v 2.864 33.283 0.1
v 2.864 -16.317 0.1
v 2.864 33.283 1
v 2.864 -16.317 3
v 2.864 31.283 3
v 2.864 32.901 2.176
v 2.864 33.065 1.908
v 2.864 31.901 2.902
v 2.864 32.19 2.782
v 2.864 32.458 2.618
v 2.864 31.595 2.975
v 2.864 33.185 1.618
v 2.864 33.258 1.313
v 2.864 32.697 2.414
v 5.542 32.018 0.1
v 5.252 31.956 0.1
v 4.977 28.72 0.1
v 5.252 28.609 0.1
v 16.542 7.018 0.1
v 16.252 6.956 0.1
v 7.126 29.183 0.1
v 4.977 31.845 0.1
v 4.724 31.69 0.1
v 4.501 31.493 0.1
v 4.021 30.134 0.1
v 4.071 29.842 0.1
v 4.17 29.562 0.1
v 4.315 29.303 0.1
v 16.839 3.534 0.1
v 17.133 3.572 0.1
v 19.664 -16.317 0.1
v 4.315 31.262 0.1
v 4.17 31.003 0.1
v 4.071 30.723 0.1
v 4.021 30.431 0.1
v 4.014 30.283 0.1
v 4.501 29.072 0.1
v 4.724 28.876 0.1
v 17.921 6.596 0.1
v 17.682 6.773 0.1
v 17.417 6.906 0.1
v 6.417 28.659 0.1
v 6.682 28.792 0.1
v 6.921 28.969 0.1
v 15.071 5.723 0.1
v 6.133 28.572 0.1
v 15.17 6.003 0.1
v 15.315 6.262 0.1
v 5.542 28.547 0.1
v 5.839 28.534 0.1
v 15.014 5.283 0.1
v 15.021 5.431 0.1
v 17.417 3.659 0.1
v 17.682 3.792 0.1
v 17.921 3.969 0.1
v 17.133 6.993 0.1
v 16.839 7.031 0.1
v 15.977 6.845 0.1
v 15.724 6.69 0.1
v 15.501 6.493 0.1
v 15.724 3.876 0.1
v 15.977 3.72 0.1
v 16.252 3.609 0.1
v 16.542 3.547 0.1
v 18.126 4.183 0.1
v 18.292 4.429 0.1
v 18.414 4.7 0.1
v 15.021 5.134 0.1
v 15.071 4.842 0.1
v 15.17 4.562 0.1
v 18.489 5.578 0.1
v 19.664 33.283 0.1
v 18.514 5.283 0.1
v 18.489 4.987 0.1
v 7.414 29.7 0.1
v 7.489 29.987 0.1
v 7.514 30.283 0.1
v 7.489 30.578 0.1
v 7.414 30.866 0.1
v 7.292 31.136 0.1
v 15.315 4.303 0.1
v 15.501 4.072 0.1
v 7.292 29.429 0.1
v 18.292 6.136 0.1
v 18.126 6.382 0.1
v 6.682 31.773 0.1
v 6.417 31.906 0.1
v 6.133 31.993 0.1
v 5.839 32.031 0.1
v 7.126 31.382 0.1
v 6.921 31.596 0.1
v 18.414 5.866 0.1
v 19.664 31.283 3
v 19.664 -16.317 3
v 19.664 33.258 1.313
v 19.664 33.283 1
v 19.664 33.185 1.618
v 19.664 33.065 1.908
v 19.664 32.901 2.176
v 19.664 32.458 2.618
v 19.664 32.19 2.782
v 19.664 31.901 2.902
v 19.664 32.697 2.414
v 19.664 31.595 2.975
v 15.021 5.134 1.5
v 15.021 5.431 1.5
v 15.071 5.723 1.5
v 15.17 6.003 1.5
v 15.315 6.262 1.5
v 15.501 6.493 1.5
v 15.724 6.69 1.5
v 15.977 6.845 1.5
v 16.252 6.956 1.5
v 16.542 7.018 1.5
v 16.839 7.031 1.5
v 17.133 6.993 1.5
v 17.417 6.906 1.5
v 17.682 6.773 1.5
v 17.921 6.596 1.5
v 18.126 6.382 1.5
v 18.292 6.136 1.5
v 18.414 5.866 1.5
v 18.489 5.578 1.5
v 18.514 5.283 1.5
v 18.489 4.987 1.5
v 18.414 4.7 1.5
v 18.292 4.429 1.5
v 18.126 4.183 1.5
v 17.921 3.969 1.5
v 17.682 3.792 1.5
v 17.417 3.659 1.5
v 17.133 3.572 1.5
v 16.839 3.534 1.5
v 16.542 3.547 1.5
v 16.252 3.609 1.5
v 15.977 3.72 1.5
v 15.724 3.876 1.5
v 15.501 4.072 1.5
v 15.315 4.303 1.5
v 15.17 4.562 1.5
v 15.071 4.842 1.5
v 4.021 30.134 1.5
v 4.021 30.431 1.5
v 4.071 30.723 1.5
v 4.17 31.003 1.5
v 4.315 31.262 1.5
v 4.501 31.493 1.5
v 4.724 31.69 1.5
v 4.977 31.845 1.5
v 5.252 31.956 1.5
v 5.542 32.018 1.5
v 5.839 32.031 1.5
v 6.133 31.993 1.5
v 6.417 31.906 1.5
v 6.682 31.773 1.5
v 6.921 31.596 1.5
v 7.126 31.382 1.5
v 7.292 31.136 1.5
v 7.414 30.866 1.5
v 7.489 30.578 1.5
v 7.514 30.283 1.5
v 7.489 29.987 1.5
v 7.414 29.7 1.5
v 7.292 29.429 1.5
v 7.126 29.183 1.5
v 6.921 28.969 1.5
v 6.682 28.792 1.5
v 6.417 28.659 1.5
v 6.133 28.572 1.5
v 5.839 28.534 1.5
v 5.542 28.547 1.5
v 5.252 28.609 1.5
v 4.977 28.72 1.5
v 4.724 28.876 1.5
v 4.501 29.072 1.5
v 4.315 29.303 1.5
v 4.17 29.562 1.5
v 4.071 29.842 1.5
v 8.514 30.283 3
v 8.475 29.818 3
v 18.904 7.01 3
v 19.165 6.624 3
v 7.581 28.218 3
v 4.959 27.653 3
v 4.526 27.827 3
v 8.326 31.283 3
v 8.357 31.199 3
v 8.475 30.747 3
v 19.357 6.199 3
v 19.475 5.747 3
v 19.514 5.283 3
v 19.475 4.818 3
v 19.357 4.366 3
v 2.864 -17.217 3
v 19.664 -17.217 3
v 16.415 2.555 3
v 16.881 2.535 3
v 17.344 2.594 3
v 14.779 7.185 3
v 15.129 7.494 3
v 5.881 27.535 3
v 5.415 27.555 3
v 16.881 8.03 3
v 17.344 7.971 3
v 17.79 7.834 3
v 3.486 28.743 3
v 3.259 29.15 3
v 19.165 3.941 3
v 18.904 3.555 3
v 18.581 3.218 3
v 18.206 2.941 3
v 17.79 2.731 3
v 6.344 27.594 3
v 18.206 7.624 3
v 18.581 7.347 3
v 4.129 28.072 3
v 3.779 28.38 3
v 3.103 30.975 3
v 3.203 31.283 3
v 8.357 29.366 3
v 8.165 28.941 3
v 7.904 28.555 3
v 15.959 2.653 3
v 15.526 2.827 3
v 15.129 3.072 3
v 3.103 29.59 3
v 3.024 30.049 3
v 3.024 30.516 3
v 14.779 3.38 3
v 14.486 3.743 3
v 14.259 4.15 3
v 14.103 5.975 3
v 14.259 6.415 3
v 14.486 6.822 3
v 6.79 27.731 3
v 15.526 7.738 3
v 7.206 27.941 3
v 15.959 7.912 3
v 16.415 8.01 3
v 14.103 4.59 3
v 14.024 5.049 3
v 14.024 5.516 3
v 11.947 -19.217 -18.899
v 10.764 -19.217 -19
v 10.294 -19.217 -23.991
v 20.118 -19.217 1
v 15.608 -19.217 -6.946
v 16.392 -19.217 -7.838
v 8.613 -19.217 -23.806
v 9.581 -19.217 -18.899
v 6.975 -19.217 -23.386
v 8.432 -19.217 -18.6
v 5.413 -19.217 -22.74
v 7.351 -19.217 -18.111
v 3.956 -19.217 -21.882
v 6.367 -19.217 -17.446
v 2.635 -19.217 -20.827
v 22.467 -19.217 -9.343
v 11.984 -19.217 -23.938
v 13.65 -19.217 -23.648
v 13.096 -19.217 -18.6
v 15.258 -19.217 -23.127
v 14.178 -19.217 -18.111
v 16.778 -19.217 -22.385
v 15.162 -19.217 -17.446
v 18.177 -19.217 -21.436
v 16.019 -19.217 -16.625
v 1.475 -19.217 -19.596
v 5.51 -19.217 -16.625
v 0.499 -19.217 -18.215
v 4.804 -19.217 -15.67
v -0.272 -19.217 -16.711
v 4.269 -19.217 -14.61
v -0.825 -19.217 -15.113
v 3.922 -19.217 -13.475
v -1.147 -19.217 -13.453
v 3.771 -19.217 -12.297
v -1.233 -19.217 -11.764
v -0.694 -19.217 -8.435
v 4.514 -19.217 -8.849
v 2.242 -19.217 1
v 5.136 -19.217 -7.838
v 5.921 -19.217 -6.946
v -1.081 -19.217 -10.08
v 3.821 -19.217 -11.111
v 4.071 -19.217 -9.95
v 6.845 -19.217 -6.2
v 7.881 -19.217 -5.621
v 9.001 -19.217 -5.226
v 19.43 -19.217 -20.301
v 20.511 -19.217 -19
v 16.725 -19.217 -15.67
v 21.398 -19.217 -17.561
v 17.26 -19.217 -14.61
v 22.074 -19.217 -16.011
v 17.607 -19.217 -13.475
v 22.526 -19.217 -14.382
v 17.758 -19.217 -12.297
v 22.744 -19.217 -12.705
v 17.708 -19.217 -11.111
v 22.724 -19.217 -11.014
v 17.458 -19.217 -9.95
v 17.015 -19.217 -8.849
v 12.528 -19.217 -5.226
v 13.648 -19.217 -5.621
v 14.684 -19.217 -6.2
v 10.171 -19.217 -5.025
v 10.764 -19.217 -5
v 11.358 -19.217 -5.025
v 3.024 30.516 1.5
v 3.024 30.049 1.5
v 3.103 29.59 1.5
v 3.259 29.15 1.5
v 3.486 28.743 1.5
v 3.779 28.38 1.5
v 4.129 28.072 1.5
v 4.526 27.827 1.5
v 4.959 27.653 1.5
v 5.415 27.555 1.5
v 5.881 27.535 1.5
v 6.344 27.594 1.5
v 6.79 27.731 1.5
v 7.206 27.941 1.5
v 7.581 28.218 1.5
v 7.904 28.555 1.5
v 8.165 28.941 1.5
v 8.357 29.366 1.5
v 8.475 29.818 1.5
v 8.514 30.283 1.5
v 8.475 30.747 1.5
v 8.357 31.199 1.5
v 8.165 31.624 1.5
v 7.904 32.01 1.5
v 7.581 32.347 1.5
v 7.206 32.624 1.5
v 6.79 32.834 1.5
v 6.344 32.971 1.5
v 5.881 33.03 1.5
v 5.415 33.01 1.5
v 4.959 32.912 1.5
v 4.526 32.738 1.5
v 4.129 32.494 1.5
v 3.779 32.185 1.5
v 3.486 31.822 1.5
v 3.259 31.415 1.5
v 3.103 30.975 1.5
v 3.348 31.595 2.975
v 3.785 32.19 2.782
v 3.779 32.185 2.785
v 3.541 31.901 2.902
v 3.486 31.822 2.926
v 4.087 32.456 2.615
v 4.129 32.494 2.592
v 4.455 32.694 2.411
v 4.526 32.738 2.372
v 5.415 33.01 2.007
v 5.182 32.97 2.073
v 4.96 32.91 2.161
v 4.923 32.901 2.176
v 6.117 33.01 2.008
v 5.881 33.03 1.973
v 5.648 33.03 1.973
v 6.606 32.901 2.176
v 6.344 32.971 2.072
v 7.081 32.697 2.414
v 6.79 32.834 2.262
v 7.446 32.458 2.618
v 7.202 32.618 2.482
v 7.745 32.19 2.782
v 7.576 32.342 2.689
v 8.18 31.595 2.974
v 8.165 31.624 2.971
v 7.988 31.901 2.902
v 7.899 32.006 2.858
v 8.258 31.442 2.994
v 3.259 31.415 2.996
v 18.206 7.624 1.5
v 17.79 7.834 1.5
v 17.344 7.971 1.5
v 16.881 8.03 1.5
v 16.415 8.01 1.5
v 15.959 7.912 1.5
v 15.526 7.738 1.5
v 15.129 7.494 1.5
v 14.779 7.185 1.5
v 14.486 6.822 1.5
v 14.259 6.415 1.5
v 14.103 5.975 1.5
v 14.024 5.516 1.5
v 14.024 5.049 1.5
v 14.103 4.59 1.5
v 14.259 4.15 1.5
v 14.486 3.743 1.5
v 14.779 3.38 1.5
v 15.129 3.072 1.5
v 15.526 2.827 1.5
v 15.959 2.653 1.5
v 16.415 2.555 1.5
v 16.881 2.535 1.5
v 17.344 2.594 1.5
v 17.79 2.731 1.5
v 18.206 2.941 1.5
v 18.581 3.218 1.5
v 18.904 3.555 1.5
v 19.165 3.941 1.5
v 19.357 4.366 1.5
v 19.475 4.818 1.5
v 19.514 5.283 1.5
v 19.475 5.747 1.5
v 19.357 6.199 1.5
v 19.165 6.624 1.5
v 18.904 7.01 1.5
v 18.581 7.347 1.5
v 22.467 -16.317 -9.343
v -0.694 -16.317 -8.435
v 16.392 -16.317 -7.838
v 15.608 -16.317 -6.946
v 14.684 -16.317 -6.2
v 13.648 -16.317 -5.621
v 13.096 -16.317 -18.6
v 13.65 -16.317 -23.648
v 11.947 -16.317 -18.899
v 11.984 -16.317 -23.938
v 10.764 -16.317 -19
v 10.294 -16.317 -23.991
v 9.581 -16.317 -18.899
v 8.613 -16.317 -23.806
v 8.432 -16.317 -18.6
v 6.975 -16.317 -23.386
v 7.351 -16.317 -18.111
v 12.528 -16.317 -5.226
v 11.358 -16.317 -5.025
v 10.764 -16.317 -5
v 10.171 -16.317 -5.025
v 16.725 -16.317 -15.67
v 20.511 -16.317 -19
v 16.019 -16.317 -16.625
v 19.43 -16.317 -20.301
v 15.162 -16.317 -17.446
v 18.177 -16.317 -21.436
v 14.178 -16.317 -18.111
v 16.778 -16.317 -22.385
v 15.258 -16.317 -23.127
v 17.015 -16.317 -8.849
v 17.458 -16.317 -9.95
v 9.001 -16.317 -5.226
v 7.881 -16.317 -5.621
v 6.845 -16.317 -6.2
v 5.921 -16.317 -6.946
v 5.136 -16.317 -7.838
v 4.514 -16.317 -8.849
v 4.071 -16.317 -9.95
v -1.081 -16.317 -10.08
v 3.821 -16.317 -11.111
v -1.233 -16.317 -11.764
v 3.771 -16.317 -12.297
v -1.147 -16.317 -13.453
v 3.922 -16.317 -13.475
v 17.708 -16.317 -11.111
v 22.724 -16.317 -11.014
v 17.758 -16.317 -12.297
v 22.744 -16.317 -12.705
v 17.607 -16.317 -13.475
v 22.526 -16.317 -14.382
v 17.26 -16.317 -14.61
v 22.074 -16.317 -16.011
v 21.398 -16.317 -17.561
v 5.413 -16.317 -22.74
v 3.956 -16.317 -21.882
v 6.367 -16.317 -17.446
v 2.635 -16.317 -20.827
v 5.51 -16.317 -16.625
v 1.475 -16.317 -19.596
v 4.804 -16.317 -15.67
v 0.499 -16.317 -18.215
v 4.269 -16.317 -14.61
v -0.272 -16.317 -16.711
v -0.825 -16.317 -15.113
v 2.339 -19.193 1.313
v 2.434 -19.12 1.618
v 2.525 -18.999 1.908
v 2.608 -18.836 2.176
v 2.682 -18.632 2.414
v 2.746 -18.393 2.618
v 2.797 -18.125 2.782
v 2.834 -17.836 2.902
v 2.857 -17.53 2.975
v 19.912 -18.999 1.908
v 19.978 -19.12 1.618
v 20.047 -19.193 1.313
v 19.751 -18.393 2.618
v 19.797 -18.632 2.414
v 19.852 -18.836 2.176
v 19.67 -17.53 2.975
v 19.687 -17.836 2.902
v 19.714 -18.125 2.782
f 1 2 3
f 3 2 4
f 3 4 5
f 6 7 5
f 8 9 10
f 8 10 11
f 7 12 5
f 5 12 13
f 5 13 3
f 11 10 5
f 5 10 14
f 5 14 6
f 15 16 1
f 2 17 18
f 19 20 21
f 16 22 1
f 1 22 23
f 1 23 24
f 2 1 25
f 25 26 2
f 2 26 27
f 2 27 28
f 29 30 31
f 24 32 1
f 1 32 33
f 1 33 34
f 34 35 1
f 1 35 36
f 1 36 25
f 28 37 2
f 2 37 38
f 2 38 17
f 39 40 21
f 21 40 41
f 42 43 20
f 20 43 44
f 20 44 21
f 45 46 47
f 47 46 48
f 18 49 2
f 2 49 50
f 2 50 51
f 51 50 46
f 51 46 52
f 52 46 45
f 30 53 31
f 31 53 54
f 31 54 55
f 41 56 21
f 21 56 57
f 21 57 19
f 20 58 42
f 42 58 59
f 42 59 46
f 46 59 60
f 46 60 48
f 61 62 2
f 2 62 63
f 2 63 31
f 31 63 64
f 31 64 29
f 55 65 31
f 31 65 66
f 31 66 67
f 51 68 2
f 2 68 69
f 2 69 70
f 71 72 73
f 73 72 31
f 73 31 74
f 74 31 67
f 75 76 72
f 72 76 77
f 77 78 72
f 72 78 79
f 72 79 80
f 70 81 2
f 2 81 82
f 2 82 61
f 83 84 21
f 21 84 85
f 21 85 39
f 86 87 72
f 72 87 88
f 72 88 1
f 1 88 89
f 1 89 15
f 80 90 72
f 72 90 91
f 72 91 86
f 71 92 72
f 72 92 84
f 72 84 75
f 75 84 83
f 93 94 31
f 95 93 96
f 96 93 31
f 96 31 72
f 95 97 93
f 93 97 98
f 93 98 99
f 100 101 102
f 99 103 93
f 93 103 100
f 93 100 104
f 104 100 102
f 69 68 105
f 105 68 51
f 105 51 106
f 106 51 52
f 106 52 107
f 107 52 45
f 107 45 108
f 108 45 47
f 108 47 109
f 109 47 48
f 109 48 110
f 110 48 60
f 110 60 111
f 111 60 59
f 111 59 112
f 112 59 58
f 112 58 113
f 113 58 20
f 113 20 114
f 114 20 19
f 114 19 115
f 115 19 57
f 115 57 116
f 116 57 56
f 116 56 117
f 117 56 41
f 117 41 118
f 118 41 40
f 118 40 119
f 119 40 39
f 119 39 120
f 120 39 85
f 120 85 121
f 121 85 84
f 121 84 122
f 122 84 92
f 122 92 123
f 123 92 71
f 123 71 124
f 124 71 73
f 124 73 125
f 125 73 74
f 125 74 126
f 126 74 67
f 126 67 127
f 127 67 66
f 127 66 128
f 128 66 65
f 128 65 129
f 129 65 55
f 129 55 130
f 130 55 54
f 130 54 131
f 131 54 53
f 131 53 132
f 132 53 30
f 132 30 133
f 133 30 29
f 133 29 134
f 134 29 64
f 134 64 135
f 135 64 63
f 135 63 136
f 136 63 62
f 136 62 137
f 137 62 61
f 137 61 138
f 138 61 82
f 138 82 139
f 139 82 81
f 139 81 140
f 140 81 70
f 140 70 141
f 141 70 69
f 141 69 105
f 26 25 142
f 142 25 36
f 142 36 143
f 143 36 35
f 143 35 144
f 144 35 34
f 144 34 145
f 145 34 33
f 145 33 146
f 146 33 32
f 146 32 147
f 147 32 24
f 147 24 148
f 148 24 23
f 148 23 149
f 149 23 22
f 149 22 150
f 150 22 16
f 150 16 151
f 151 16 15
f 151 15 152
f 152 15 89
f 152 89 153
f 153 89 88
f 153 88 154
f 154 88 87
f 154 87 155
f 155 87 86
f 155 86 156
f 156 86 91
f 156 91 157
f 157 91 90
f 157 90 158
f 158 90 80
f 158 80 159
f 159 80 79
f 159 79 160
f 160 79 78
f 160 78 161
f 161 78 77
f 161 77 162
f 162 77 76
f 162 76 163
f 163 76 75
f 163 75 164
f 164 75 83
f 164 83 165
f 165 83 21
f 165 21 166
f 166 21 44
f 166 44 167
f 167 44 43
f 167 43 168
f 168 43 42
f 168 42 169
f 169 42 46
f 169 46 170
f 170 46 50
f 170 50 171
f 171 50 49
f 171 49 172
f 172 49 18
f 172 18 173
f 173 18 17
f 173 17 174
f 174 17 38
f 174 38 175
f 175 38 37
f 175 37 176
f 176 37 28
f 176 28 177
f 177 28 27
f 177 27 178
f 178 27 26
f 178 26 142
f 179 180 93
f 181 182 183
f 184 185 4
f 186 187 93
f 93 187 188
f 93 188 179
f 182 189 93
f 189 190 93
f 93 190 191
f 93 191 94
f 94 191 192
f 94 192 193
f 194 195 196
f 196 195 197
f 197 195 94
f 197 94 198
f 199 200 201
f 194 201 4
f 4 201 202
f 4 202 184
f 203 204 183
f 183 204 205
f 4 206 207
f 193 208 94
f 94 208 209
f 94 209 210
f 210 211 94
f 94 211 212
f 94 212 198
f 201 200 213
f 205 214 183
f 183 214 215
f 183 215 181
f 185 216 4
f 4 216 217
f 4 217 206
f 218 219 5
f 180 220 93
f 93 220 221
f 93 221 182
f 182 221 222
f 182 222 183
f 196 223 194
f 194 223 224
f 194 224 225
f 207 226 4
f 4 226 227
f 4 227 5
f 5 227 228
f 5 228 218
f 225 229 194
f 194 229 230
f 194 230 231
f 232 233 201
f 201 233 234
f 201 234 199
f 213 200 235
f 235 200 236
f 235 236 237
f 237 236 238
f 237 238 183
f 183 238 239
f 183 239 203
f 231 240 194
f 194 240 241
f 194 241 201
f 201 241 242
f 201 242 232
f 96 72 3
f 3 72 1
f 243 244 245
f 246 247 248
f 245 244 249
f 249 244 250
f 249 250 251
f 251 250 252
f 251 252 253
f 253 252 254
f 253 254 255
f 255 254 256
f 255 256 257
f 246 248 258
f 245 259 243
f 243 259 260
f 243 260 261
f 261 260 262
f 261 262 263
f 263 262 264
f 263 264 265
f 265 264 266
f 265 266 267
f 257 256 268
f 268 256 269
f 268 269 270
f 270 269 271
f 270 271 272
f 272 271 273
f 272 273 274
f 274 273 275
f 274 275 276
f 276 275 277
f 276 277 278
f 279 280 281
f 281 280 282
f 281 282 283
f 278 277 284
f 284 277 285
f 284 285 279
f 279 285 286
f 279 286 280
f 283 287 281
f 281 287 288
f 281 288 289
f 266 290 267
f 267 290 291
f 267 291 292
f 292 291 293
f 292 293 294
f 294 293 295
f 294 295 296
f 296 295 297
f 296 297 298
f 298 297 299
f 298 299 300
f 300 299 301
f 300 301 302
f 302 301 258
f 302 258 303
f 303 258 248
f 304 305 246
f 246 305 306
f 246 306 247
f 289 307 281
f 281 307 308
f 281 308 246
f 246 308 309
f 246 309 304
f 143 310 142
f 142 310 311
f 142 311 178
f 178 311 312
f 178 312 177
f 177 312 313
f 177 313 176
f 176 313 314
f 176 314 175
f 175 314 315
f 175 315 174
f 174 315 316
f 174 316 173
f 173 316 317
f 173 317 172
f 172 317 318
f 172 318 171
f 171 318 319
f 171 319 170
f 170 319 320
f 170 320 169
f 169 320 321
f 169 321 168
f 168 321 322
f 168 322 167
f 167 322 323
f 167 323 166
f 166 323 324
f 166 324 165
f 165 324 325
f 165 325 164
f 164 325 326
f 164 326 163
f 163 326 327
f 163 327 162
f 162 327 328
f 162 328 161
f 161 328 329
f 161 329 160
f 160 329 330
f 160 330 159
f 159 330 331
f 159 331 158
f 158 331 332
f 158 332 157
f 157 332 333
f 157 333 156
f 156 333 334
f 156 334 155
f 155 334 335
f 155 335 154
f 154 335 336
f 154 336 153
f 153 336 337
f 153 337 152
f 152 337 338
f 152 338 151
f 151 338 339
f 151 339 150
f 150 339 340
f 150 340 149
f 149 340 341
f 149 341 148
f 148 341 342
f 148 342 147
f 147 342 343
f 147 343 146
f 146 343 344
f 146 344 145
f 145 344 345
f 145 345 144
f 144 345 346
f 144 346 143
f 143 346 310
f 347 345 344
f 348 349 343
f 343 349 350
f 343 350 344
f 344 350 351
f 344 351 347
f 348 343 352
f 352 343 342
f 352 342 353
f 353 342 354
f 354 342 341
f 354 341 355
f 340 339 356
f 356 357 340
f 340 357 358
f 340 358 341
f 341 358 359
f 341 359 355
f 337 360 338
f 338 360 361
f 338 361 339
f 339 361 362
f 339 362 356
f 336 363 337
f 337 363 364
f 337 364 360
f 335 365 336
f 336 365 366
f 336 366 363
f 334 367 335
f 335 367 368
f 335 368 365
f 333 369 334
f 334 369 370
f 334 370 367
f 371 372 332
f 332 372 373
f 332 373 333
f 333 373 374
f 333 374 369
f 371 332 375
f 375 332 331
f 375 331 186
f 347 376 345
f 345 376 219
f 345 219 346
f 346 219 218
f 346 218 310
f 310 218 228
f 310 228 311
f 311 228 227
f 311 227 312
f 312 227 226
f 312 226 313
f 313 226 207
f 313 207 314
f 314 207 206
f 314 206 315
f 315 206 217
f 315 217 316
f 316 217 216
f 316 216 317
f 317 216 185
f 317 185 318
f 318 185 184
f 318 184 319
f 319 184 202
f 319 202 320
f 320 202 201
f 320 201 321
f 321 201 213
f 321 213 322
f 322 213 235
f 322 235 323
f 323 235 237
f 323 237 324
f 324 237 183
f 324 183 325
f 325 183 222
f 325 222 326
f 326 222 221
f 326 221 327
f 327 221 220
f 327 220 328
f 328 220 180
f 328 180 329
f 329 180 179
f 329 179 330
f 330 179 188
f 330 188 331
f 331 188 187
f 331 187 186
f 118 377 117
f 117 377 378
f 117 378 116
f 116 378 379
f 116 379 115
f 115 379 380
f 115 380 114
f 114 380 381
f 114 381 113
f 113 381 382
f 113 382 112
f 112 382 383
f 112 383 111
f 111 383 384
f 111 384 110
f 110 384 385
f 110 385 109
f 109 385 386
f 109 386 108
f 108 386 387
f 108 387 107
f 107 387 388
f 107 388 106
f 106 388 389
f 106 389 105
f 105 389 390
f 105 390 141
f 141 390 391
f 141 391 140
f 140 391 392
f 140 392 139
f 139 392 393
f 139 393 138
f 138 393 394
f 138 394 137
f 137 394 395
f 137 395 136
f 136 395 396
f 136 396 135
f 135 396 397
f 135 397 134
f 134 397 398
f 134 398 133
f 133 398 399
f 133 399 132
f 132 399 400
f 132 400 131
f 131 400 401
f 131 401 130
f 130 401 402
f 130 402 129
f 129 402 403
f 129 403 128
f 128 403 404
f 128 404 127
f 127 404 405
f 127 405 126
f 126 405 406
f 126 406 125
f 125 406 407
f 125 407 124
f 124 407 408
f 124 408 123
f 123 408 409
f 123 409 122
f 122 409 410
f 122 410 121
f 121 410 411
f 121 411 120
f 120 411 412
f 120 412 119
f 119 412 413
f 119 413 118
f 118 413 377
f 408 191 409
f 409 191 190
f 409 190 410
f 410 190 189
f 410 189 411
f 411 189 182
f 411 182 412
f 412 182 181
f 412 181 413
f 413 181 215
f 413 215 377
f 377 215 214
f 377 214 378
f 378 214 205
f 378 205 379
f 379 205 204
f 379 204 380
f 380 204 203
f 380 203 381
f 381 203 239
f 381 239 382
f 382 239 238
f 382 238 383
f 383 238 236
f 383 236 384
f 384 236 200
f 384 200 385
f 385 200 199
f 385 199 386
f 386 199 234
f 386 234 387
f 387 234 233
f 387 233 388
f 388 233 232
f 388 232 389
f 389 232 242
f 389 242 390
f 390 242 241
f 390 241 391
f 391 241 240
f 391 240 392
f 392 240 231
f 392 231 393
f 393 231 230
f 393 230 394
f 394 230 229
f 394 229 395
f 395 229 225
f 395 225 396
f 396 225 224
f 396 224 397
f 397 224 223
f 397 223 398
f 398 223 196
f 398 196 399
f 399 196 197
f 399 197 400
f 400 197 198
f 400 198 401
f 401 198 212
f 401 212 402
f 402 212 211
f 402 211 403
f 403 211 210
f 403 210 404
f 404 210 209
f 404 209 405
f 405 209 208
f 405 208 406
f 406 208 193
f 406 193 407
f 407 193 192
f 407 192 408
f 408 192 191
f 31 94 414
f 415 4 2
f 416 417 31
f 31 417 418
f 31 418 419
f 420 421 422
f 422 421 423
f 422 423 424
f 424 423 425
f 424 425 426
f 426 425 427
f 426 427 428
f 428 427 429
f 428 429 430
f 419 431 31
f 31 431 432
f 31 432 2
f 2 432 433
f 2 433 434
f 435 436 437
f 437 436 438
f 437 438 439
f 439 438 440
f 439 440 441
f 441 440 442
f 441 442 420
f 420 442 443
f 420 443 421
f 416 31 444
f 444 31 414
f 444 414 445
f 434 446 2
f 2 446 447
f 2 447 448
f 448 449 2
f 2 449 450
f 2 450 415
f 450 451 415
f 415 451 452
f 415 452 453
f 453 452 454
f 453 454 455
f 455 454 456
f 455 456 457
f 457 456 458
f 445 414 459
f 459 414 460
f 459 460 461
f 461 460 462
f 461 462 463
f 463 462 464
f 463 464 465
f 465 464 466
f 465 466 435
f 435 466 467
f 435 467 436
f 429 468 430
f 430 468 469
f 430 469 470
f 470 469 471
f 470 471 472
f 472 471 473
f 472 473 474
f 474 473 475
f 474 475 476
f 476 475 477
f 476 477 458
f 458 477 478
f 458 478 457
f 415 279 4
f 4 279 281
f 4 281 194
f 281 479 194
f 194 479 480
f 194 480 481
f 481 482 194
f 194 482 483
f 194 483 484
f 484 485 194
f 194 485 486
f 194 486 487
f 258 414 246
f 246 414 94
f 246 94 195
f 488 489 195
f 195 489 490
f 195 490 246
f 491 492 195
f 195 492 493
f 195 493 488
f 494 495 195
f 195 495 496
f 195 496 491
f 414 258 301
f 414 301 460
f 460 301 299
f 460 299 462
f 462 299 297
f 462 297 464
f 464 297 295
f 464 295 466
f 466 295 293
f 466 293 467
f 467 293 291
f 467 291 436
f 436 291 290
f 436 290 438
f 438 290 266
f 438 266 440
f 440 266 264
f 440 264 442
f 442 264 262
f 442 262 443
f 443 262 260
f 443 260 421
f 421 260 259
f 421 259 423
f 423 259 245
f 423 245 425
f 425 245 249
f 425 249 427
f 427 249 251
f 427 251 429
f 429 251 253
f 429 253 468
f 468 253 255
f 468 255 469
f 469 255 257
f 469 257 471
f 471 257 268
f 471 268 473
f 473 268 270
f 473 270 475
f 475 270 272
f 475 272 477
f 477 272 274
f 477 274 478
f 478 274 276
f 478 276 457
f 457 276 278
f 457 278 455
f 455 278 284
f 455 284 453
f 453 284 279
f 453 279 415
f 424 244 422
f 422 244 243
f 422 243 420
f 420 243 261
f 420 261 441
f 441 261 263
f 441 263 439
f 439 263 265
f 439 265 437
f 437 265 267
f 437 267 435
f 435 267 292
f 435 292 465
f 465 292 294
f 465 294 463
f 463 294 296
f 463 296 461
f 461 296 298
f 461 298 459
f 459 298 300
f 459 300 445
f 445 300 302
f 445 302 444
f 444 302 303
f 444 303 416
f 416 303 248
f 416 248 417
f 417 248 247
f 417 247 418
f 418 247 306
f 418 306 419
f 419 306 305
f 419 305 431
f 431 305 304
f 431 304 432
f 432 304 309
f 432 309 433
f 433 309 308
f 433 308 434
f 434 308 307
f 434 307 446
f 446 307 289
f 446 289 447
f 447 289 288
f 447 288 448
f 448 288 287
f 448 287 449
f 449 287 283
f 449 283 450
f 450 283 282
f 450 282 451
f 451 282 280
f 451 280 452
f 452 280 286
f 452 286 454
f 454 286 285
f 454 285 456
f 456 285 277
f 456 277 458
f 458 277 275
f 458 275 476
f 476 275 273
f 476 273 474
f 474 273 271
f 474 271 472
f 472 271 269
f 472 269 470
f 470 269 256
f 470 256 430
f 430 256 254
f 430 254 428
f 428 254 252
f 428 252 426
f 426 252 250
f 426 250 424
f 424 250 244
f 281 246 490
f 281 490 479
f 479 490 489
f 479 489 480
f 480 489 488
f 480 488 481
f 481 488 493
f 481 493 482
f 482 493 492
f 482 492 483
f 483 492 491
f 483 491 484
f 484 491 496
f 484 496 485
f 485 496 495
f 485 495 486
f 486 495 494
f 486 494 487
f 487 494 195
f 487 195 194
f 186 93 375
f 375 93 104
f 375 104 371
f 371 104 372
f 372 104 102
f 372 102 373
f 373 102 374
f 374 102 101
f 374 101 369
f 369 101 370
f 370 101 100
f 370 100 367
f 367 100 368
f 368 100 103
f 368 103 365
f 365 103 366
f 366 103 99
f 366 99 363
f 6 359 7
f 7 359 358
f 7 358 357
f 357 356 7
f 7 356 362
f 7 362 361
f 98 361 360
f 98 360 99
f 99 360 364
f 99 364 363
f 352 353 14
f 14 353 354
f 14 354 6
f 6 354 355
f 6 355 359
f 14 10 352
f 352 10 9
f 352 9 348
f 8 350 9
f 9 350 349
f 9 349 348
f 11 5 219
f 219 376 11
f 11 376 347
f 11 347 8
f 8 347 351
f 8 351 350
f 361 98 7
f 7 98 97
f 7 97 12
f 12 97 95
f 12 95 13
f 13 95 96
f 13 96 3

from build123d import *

# Parameters (mm, degrees)
SALIENTE_EXTRUIR1_DEPTH = 52.5
CORTAR_EXTRUIR3_REACH   = 40.766
CROQUIS3_R              = 1.75
CROQUIS4_R              = 2.75
CORTAR_EXTRUIR4_DEPTH   = 1.5
CROQUIS5_R              = 7
SALIENTE_EXTRUIR2_DEPTH = 2.9
REDONDEO1_R             = 2


with BuildPart() as part:
    # Croquis2 → Saliente-Extruir1 (new body)
    with BuildSketch(Plane(origin=(0, 33.282514016, 0), x_dir=(1, 0, 0), z_dir=(0, 1, 0))):
        Polygon((19.664416593, -1), (19.664416593, -0.1), (2.864416593, -0.1), (2.864416593, -1), (2.864416593, -3), (19.664416593, -3), align=None)
    extrude(amount=-SALIENTE_EXTRUIR1_DEPTH)

    # Croquis3 → Cortar-Extruir3 (cut, up to next)
    with BuildSketch(Plane.XY.offset(3), mode=Mode.PRIVATE) as cortar_extruir3_sk1:
        with Locations((5.764416593, 30.282514016)):
            Circle(CROQUIS3_R)
    cortar_extruir3_tool1 = extrude(cortar_extruir3_sk1.sketch, amount=-CORTAR_EXTRUIR3_REACH, mode=Mode.PRIVATE) & part.part
    # Croquis3 → Cortar-Extruir3 (cut, up to next)
    with BuildSketch(Plane.XY.offset(3), mode=Mode.PRIVATE) as cortar_extruir3_sk2:
        with Locations((16.764416593, 5.282514016)):
            Circle(CROQUIS3_R)
    cortar_extruir3_tool2 = extrude(cortar_extruir3_sk2.sketch, amount=-CORTAR_EXTRUIR3_REACH, mode=Mode.PRIVATE) & part.part
    add(cortar_extruir3_tool1.solids().sort_by_distance((5.764417, 30.282514, 3))[0], mode=Mode.SUBTRACT)
    add(cortar_extruir3_tool2.solids().sort_by_distance((16.764417, 5.282514, 3))[0], mode=Mode.SUBTRACT)

    # Croquis4 → Cortar-Extruir4 (cut)
    with BuildSketch(Plane.XY.offset(3)):
        with Locations((5.764416593, 30.282514016)):
            Circle(CROQUIS4_R)
        with Locations((16.764416593, 5.282514016)):
            Circle(CROQUIS4_R)
    extrude(amount=-CORTAR_EXTRUIR4_DEPTH, mode=Mode.SUBTRACT)

    # Croquis5 → Saliente-Extruir2 (add)
    with BuildSketch(Plane(origin=(0, -19.217485984, 0), x_dir=(1, 0, 0), z_dir=(0, 1, 0))):
        with BuildLine():
            Line((2.864416593, -3), (19.664416593, -3))
            Line((19.664416593, -3), (22.46664072, 9.343319648))
            ThreePointArc((22.46664072, 9.343319648), (10.29394354, 23.990773749), (-0.693676229, 8.434595553))
            Line((-0.693676229, 8.434595553), (2.864416593, -3))
        make_face()
        with Locations(Location((10.764416593, 12, 0), (0, 0, 270))):
            Circle(CROQUIS5_R, mode=Mode.SUBTRACT)
    extrude(amount=SALIENTE_EXTRUIR2_DEPTH)

    # Redondeo1
    # the kernel refuses this fillet: 2 mm, written as the material it takes off along each edge
    with BuildSketch(Plane(origin=(-2.135583407, -19.217485984, 3), x_dir=(0, 1, 0), z_dir=(1, 0, 0))) as redondeo1_piece_1:
        with BuildLine():
            CenterArc((REDONDEO1_R, -REDONDEO1_R), REDONDEO1_R, 90, 90)
            Line((0, -REDONDEO1_R), (0, 0))
            Line((0, 0), (REDONDEO1_R, 0))
        make_face()
    extrude(amount=26.8, mode=Mode.SUBTRACT)
    with BuildSketch(Plane(origin=(-2.135583407, 33.282514016, 3), x_dir=(0, -1, 0), z_dir=(1, 0, 0))) as redondeo1_piece_2:
        with BuildLine():
            CenterArc((REDONDEO1_R, REDONDEO1_R), REDONDEO1_R, 180, 90)
            Line((0, REDONDEO1_R), (0, 0))
            Line((0, 0), (REDONDEO1_R, 0))
        make_face()
    extrude(amount=26.8, mode=Mode.SUBTRACT)


solid = part.part
